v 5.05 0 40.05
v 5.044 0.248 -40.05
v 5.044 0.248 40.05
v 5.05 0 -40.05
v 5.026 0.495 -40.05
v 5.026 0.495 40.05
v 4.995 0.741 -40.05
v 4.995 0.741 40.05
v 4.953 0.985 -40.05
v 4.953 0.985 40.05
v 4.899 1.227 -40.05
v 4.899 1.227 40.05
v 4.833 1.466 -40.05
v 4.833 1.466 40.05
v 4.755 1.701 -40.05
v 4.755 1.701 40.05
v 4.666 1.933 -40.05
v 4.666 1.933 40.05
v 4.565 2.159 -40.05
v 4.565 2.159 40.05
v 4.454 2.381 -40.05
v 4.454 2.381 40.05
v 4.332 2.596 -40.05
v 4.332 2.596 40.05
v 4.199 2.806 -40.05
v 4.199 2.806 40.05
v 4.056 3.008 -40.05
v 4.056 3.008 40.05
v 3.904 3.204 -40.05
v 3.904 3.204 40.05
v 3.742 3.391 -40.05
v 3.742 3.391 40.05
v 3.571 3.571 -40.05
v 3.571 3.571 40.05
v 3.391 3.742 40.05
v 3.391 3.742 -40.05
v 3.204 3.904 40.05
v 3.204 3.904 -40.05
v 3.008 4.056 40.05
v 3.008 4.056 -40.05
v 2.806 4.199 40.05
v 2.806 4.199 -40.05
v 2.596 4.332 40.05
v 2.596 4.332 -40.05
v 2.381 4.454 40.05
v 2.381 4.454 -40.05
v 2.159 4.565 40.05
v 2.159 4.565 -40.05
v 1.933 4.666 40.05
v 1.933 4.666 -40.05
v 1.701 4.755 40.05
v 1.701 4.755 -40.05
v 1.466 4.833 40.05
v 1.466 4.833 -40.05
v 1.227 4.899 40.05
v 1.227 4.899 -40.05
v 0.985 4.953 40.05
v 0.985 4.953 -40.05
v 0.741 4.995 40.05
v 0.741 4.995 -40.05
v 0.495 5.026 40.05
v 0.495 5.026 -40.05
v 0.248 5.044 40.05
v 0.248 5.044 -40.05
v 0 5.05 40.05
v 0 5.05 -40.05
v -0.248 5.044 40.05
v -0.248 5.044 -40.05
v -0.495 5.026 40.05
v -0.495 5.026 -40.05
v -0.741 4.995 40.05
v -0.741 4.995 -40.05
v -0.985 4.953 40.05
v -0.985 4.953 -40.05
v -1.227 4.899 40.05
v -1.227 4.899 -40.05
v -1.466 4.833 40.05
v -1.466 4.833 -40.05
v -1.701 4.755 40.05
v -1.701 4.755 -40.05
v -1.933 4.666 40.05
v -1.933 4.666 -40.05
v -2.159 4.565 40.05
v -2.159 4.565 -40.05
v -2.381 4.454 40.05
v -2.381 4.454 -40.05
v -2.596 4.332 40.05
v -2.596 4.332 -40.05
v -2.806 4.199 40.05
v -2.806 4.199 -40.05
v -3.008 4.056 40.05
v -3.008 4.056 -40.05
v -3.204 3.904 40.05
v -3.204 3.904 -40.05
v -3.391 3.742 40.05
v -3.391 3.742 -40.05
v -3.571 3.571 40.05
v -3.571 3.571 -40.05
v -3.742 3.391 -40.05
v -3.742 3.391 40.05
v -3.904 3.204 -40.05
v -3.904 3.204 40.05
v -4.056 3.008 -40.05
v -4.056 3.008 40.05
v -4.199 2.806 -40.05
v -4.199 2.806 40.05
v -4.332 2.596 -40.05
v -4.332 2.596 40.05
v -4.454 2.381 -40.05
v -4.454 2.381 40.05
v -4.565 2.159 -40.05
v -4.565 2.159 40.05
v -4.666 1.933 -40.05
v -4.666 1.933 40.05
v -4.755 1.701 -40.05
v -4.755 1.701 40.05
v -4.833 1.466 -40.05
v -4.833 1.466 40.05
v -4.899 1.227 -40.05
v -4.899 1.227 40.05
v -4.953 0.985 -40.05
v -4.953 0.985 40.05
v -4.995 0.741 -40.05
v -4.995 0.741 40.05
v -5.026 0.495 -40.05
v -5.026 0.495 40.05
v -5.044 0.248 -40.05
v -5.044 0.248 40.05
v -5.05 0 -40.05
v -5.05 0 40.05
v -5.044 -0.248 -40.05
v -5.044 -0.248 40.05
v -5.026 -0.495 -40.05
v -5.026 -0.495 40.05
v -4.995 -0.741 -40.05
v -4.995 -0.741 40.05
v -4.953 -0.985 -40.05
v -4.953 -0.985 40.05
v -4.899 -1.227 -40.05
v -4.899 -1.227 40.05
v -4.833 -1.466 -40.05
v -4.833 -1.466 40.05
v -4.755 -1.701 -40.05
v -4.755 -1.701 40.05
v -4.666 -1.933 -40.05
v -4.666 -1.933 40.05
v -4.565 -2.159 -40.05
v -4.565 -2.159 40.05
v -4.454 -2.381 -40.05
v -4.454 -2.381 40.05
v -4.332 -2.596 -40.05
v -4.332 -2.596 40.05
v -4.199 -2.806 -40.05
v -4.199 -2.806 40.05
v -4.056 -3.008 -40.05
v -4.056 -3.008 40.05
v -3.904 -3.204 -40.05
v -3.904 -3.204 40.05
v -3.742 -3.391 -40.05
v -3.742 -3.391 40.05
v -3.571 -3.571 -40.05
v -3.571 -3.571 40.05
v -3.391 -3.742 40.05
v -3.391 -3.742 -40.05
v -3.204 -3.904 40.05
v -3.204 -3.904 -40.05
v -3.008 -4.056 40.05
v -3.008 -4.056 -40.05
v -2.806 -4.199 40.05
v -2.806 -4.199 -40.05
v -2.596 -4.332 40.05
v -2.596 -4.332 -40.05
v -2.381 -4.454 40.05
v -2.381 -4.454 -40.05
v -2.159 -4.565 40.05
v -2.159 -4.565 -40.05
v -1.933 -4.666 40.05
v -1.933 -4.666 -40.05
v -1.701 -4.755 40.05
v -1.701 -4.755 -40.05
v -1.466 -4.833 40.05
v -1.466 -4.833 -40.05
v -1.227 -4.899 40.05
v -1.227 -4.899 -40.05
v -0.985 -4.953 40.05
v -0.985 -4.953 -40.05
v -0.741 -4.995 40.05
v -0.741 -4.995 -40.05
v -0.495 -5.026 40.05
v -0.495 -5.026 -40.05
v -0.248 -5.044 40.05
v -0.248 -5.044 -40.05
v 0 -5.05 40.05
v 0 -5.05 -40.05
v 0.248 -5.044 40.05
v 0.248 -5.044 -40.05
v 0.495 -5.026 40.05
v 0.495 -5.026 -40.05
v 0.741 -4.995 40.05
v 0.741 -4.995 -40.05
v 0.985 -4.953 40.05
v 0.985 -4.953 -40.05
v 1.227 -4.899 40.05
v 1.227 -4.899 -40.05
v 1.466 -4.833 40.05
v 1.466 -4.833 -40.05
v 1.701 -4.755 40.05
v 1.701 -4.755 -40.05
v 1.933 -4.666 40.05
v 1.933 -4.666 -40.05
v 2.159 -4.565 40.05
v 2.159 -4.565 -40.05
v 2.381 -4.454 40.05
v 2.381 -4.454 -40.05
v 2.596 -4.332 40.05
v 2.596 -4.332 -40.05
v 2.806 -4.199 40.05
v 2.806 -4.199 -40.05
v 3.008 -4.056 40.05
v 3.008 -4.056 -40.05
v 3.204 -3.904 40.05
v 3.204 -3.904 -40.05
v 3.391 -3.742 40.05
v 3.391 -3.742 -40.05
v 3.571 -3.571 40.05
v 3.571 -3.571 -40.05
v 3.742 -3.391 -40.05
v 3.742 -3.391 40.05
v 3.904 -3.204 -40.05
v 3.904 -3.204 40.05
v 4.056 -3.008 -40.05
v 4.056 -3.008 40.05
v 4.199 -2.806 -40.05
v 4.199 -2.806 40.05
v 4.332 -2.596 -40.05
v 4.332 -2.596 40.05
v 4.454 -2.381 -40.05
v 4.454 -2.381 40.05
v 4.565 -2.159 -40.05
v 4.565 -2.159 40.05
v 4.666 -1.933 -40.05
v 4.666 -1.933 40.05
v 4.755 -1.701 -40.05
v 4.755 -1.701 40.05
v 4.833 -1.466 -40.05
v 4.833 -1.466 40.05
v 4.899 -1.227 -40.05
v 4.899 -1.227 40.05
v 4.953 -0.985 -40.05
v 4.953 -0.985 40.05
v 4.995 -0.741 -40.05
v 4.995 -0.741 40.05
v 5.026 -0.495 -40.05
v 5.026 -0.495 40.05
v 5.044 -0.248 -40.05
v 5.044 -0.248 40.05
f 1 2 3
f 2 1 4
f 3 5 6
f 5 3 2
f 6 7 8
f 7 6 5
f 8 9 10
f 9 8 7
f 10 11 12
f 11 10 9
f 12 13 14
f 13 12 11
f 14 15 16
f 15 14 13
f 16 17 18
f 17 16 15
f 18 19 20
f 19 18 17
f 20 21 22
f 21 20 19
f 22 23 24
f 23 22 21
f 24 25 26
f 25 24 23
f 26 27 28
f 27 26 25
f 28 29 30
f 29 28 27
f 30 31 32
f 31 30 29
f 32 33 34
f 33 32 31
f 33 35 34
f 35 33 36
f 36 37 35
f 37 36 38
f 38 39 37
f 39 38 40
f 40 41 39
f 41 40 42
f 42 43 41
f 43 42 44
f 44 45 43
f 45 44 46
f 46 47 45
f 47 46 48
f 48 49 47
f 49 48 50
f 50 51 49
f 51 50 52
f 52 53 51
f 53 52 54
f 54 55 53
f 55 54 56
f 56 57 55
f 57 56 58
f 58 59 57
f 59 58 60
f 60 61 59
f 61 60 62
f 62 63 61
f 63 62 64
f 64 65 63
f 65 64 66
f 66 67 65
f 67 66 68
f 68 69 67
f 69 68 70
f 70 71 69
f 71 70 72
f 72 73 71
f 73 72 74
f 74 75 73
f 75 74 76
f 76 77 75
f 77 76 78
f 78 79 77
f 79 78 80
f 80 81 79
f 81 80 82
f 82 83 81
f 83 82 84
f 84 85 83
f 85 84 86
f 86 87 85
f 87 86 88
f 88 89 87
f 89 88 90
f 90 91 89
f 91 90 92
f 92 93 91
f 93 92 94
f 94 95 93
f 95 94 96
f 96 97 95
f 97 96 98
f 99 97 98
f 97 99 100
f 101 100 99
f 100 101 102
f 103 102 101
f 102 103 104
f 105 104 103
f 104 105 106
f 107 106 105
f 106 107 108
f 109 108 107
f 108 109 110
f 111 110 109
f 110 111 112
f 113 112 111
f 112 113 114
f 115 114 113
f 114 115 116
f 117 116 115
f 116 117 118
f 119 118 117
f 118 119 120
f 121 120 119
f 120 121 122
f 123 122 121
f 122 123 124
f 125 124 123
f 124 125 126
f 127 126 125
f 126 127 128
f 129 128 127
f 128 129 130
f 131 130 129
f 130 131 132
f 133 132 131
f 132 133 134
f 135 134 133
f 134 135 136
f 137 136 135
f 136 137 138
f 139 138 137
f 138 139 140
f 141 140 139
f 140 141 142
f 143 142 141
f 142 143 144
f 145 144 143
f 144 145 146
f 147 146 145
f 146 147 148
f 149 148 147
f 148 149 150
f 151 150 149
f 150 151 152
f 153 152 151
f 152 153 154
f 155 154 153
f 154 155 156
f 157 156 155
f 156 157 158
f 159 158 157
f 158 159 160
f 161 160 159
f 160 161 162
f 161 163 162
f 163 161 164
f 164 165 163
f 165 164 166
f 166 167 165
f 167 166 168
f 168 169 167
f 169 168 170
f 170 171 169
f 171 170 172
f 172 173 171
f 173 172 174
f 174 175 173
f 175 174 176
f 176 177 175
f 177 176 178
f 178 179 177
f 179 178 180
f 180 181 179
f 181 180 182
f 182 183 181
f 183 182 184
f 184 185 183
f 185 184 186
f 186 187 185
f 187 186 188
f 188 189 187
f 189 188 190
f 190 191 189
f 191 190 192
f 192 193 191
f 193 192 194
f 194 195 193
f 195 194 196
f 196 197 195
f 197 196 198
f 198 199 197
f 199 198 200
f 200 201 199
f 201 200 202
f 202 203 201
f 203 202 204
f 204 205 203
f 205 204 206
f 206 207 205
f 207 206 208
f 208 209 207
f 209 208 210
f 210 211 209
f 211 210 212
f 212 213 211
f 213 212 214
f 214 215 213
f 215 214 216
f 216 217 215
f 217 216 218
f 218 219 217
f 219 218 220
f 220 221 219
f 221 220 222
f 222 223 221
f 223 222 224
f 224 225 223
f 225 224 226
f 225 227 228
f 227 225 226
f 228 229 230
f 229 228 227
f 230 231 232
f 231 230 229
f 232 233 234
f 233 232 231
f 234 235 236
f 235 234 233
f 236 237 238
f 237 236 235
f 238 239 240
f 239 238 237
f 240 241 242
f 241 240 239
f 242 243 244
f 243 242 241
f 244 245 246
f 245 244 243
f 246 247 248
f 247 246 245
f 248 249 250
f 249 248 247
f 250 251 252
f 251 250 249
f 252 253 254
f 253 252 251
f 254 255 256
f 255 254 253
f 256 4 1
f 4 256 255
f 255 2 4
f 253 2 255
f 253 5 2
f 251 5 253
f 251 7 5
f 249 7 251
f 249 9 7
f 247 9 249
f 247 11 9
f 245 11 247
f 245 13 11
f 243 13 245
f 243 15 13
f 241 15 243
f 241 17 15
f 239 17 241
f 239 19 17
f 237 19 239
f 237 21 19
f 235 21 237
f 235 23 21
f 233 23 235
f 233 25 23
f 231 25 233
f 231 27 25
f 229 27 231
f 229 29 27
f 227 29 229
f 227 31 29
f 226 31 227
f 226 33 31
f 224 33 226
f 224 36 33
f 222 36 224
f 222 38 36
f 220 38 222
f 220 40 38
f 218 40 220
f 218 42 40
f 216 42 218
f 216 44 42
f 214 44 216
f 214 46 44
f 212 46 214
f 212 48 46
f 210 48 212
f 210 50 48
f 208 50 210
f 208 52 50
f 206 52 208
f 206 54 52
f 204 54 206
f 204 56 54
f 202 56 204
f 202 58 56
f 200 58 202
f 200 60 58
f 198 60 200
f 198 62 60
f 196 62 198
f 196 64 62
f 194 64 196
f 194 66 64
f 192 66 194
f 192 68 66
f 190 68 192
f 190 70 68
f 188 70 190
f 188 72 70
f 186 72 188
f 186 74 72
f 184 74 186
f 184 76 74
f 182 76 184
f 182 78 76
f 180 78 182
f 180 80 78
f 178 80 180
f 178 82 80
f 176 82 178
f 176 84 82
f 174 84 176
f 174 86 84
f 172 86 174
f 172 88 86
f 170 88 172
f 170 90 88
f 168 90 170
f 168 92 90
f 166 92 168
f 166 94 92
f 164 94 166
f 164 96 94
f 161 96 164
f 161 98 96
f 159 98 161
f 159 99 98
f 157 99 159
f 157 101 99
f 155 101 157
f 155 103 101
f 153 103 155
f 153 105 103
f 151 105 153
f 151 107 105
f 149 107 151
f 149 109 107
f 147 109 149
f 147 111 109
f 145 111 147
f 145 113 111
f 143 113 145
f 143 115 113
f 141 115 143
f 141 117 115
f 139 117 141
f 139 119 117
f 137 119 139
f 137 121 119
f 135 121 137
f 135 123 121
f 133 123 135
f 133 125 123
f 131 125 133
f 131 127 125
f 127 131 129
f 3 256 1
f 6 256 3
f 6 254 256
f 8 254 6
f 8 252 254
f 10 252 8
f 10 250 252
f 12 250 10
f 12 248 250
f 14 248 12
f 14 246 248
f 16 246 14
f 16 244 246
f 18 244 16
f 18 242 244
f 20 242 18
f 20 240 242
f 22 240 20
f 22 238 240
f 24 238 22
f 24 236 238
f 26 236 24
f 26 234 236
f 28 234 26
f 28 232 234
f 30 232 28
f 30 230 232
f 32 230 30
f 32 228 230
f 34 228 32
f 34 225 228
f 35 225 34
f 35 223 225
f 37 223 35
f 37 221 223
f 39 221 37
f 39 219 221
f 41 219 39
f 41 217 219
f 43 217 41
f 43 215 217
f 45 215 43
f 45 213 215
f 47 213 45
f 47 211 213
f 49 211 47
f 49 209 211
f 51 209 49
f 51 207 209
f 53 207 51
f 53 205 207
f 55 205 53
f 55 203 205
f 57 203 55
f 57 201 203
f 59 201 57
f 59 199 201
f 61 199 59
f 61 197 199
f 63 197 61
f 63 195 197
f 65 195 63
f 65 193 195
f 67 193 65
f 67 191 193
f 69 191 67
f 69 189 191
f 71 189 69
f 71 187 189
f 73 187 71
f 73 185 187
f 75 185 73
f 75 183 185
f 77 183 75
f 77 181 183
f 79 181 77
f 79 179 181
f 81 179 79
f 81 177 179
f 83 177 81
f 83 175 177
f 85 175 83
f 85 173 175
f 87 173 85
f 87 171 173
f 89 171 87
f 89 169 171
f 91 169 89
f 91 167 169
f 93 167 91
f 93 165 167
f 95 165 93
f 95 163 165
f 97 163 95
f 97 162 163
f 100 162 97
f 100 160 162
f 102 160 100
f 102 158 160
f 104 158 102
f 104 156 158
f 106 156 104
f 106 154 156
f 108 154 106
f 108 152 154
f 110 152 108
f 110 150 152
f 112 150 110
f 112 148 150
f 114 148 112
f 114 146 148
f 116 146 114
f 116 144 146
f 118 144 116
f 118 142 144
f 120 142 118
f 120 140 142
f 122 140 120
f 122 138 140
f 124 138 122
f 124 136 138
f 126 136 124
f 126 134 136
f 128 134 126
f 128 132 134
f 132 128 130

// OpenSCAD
/*
Spoolholder by Sven Minio is licensed under a Creative Commons Attribution-NonCommercial-ShareAlike 4.0 International License.
To view a copy of this license, visit http://creativecommons.org/licenses/by-nc-sa/4.0/.
Based on a work at https://github.com/k37z3r/Spoolholder.
*/
tolerance=0.1;
cylinder(h=80+tolerance, d=10+tolerance, center=true, $fn=128);
